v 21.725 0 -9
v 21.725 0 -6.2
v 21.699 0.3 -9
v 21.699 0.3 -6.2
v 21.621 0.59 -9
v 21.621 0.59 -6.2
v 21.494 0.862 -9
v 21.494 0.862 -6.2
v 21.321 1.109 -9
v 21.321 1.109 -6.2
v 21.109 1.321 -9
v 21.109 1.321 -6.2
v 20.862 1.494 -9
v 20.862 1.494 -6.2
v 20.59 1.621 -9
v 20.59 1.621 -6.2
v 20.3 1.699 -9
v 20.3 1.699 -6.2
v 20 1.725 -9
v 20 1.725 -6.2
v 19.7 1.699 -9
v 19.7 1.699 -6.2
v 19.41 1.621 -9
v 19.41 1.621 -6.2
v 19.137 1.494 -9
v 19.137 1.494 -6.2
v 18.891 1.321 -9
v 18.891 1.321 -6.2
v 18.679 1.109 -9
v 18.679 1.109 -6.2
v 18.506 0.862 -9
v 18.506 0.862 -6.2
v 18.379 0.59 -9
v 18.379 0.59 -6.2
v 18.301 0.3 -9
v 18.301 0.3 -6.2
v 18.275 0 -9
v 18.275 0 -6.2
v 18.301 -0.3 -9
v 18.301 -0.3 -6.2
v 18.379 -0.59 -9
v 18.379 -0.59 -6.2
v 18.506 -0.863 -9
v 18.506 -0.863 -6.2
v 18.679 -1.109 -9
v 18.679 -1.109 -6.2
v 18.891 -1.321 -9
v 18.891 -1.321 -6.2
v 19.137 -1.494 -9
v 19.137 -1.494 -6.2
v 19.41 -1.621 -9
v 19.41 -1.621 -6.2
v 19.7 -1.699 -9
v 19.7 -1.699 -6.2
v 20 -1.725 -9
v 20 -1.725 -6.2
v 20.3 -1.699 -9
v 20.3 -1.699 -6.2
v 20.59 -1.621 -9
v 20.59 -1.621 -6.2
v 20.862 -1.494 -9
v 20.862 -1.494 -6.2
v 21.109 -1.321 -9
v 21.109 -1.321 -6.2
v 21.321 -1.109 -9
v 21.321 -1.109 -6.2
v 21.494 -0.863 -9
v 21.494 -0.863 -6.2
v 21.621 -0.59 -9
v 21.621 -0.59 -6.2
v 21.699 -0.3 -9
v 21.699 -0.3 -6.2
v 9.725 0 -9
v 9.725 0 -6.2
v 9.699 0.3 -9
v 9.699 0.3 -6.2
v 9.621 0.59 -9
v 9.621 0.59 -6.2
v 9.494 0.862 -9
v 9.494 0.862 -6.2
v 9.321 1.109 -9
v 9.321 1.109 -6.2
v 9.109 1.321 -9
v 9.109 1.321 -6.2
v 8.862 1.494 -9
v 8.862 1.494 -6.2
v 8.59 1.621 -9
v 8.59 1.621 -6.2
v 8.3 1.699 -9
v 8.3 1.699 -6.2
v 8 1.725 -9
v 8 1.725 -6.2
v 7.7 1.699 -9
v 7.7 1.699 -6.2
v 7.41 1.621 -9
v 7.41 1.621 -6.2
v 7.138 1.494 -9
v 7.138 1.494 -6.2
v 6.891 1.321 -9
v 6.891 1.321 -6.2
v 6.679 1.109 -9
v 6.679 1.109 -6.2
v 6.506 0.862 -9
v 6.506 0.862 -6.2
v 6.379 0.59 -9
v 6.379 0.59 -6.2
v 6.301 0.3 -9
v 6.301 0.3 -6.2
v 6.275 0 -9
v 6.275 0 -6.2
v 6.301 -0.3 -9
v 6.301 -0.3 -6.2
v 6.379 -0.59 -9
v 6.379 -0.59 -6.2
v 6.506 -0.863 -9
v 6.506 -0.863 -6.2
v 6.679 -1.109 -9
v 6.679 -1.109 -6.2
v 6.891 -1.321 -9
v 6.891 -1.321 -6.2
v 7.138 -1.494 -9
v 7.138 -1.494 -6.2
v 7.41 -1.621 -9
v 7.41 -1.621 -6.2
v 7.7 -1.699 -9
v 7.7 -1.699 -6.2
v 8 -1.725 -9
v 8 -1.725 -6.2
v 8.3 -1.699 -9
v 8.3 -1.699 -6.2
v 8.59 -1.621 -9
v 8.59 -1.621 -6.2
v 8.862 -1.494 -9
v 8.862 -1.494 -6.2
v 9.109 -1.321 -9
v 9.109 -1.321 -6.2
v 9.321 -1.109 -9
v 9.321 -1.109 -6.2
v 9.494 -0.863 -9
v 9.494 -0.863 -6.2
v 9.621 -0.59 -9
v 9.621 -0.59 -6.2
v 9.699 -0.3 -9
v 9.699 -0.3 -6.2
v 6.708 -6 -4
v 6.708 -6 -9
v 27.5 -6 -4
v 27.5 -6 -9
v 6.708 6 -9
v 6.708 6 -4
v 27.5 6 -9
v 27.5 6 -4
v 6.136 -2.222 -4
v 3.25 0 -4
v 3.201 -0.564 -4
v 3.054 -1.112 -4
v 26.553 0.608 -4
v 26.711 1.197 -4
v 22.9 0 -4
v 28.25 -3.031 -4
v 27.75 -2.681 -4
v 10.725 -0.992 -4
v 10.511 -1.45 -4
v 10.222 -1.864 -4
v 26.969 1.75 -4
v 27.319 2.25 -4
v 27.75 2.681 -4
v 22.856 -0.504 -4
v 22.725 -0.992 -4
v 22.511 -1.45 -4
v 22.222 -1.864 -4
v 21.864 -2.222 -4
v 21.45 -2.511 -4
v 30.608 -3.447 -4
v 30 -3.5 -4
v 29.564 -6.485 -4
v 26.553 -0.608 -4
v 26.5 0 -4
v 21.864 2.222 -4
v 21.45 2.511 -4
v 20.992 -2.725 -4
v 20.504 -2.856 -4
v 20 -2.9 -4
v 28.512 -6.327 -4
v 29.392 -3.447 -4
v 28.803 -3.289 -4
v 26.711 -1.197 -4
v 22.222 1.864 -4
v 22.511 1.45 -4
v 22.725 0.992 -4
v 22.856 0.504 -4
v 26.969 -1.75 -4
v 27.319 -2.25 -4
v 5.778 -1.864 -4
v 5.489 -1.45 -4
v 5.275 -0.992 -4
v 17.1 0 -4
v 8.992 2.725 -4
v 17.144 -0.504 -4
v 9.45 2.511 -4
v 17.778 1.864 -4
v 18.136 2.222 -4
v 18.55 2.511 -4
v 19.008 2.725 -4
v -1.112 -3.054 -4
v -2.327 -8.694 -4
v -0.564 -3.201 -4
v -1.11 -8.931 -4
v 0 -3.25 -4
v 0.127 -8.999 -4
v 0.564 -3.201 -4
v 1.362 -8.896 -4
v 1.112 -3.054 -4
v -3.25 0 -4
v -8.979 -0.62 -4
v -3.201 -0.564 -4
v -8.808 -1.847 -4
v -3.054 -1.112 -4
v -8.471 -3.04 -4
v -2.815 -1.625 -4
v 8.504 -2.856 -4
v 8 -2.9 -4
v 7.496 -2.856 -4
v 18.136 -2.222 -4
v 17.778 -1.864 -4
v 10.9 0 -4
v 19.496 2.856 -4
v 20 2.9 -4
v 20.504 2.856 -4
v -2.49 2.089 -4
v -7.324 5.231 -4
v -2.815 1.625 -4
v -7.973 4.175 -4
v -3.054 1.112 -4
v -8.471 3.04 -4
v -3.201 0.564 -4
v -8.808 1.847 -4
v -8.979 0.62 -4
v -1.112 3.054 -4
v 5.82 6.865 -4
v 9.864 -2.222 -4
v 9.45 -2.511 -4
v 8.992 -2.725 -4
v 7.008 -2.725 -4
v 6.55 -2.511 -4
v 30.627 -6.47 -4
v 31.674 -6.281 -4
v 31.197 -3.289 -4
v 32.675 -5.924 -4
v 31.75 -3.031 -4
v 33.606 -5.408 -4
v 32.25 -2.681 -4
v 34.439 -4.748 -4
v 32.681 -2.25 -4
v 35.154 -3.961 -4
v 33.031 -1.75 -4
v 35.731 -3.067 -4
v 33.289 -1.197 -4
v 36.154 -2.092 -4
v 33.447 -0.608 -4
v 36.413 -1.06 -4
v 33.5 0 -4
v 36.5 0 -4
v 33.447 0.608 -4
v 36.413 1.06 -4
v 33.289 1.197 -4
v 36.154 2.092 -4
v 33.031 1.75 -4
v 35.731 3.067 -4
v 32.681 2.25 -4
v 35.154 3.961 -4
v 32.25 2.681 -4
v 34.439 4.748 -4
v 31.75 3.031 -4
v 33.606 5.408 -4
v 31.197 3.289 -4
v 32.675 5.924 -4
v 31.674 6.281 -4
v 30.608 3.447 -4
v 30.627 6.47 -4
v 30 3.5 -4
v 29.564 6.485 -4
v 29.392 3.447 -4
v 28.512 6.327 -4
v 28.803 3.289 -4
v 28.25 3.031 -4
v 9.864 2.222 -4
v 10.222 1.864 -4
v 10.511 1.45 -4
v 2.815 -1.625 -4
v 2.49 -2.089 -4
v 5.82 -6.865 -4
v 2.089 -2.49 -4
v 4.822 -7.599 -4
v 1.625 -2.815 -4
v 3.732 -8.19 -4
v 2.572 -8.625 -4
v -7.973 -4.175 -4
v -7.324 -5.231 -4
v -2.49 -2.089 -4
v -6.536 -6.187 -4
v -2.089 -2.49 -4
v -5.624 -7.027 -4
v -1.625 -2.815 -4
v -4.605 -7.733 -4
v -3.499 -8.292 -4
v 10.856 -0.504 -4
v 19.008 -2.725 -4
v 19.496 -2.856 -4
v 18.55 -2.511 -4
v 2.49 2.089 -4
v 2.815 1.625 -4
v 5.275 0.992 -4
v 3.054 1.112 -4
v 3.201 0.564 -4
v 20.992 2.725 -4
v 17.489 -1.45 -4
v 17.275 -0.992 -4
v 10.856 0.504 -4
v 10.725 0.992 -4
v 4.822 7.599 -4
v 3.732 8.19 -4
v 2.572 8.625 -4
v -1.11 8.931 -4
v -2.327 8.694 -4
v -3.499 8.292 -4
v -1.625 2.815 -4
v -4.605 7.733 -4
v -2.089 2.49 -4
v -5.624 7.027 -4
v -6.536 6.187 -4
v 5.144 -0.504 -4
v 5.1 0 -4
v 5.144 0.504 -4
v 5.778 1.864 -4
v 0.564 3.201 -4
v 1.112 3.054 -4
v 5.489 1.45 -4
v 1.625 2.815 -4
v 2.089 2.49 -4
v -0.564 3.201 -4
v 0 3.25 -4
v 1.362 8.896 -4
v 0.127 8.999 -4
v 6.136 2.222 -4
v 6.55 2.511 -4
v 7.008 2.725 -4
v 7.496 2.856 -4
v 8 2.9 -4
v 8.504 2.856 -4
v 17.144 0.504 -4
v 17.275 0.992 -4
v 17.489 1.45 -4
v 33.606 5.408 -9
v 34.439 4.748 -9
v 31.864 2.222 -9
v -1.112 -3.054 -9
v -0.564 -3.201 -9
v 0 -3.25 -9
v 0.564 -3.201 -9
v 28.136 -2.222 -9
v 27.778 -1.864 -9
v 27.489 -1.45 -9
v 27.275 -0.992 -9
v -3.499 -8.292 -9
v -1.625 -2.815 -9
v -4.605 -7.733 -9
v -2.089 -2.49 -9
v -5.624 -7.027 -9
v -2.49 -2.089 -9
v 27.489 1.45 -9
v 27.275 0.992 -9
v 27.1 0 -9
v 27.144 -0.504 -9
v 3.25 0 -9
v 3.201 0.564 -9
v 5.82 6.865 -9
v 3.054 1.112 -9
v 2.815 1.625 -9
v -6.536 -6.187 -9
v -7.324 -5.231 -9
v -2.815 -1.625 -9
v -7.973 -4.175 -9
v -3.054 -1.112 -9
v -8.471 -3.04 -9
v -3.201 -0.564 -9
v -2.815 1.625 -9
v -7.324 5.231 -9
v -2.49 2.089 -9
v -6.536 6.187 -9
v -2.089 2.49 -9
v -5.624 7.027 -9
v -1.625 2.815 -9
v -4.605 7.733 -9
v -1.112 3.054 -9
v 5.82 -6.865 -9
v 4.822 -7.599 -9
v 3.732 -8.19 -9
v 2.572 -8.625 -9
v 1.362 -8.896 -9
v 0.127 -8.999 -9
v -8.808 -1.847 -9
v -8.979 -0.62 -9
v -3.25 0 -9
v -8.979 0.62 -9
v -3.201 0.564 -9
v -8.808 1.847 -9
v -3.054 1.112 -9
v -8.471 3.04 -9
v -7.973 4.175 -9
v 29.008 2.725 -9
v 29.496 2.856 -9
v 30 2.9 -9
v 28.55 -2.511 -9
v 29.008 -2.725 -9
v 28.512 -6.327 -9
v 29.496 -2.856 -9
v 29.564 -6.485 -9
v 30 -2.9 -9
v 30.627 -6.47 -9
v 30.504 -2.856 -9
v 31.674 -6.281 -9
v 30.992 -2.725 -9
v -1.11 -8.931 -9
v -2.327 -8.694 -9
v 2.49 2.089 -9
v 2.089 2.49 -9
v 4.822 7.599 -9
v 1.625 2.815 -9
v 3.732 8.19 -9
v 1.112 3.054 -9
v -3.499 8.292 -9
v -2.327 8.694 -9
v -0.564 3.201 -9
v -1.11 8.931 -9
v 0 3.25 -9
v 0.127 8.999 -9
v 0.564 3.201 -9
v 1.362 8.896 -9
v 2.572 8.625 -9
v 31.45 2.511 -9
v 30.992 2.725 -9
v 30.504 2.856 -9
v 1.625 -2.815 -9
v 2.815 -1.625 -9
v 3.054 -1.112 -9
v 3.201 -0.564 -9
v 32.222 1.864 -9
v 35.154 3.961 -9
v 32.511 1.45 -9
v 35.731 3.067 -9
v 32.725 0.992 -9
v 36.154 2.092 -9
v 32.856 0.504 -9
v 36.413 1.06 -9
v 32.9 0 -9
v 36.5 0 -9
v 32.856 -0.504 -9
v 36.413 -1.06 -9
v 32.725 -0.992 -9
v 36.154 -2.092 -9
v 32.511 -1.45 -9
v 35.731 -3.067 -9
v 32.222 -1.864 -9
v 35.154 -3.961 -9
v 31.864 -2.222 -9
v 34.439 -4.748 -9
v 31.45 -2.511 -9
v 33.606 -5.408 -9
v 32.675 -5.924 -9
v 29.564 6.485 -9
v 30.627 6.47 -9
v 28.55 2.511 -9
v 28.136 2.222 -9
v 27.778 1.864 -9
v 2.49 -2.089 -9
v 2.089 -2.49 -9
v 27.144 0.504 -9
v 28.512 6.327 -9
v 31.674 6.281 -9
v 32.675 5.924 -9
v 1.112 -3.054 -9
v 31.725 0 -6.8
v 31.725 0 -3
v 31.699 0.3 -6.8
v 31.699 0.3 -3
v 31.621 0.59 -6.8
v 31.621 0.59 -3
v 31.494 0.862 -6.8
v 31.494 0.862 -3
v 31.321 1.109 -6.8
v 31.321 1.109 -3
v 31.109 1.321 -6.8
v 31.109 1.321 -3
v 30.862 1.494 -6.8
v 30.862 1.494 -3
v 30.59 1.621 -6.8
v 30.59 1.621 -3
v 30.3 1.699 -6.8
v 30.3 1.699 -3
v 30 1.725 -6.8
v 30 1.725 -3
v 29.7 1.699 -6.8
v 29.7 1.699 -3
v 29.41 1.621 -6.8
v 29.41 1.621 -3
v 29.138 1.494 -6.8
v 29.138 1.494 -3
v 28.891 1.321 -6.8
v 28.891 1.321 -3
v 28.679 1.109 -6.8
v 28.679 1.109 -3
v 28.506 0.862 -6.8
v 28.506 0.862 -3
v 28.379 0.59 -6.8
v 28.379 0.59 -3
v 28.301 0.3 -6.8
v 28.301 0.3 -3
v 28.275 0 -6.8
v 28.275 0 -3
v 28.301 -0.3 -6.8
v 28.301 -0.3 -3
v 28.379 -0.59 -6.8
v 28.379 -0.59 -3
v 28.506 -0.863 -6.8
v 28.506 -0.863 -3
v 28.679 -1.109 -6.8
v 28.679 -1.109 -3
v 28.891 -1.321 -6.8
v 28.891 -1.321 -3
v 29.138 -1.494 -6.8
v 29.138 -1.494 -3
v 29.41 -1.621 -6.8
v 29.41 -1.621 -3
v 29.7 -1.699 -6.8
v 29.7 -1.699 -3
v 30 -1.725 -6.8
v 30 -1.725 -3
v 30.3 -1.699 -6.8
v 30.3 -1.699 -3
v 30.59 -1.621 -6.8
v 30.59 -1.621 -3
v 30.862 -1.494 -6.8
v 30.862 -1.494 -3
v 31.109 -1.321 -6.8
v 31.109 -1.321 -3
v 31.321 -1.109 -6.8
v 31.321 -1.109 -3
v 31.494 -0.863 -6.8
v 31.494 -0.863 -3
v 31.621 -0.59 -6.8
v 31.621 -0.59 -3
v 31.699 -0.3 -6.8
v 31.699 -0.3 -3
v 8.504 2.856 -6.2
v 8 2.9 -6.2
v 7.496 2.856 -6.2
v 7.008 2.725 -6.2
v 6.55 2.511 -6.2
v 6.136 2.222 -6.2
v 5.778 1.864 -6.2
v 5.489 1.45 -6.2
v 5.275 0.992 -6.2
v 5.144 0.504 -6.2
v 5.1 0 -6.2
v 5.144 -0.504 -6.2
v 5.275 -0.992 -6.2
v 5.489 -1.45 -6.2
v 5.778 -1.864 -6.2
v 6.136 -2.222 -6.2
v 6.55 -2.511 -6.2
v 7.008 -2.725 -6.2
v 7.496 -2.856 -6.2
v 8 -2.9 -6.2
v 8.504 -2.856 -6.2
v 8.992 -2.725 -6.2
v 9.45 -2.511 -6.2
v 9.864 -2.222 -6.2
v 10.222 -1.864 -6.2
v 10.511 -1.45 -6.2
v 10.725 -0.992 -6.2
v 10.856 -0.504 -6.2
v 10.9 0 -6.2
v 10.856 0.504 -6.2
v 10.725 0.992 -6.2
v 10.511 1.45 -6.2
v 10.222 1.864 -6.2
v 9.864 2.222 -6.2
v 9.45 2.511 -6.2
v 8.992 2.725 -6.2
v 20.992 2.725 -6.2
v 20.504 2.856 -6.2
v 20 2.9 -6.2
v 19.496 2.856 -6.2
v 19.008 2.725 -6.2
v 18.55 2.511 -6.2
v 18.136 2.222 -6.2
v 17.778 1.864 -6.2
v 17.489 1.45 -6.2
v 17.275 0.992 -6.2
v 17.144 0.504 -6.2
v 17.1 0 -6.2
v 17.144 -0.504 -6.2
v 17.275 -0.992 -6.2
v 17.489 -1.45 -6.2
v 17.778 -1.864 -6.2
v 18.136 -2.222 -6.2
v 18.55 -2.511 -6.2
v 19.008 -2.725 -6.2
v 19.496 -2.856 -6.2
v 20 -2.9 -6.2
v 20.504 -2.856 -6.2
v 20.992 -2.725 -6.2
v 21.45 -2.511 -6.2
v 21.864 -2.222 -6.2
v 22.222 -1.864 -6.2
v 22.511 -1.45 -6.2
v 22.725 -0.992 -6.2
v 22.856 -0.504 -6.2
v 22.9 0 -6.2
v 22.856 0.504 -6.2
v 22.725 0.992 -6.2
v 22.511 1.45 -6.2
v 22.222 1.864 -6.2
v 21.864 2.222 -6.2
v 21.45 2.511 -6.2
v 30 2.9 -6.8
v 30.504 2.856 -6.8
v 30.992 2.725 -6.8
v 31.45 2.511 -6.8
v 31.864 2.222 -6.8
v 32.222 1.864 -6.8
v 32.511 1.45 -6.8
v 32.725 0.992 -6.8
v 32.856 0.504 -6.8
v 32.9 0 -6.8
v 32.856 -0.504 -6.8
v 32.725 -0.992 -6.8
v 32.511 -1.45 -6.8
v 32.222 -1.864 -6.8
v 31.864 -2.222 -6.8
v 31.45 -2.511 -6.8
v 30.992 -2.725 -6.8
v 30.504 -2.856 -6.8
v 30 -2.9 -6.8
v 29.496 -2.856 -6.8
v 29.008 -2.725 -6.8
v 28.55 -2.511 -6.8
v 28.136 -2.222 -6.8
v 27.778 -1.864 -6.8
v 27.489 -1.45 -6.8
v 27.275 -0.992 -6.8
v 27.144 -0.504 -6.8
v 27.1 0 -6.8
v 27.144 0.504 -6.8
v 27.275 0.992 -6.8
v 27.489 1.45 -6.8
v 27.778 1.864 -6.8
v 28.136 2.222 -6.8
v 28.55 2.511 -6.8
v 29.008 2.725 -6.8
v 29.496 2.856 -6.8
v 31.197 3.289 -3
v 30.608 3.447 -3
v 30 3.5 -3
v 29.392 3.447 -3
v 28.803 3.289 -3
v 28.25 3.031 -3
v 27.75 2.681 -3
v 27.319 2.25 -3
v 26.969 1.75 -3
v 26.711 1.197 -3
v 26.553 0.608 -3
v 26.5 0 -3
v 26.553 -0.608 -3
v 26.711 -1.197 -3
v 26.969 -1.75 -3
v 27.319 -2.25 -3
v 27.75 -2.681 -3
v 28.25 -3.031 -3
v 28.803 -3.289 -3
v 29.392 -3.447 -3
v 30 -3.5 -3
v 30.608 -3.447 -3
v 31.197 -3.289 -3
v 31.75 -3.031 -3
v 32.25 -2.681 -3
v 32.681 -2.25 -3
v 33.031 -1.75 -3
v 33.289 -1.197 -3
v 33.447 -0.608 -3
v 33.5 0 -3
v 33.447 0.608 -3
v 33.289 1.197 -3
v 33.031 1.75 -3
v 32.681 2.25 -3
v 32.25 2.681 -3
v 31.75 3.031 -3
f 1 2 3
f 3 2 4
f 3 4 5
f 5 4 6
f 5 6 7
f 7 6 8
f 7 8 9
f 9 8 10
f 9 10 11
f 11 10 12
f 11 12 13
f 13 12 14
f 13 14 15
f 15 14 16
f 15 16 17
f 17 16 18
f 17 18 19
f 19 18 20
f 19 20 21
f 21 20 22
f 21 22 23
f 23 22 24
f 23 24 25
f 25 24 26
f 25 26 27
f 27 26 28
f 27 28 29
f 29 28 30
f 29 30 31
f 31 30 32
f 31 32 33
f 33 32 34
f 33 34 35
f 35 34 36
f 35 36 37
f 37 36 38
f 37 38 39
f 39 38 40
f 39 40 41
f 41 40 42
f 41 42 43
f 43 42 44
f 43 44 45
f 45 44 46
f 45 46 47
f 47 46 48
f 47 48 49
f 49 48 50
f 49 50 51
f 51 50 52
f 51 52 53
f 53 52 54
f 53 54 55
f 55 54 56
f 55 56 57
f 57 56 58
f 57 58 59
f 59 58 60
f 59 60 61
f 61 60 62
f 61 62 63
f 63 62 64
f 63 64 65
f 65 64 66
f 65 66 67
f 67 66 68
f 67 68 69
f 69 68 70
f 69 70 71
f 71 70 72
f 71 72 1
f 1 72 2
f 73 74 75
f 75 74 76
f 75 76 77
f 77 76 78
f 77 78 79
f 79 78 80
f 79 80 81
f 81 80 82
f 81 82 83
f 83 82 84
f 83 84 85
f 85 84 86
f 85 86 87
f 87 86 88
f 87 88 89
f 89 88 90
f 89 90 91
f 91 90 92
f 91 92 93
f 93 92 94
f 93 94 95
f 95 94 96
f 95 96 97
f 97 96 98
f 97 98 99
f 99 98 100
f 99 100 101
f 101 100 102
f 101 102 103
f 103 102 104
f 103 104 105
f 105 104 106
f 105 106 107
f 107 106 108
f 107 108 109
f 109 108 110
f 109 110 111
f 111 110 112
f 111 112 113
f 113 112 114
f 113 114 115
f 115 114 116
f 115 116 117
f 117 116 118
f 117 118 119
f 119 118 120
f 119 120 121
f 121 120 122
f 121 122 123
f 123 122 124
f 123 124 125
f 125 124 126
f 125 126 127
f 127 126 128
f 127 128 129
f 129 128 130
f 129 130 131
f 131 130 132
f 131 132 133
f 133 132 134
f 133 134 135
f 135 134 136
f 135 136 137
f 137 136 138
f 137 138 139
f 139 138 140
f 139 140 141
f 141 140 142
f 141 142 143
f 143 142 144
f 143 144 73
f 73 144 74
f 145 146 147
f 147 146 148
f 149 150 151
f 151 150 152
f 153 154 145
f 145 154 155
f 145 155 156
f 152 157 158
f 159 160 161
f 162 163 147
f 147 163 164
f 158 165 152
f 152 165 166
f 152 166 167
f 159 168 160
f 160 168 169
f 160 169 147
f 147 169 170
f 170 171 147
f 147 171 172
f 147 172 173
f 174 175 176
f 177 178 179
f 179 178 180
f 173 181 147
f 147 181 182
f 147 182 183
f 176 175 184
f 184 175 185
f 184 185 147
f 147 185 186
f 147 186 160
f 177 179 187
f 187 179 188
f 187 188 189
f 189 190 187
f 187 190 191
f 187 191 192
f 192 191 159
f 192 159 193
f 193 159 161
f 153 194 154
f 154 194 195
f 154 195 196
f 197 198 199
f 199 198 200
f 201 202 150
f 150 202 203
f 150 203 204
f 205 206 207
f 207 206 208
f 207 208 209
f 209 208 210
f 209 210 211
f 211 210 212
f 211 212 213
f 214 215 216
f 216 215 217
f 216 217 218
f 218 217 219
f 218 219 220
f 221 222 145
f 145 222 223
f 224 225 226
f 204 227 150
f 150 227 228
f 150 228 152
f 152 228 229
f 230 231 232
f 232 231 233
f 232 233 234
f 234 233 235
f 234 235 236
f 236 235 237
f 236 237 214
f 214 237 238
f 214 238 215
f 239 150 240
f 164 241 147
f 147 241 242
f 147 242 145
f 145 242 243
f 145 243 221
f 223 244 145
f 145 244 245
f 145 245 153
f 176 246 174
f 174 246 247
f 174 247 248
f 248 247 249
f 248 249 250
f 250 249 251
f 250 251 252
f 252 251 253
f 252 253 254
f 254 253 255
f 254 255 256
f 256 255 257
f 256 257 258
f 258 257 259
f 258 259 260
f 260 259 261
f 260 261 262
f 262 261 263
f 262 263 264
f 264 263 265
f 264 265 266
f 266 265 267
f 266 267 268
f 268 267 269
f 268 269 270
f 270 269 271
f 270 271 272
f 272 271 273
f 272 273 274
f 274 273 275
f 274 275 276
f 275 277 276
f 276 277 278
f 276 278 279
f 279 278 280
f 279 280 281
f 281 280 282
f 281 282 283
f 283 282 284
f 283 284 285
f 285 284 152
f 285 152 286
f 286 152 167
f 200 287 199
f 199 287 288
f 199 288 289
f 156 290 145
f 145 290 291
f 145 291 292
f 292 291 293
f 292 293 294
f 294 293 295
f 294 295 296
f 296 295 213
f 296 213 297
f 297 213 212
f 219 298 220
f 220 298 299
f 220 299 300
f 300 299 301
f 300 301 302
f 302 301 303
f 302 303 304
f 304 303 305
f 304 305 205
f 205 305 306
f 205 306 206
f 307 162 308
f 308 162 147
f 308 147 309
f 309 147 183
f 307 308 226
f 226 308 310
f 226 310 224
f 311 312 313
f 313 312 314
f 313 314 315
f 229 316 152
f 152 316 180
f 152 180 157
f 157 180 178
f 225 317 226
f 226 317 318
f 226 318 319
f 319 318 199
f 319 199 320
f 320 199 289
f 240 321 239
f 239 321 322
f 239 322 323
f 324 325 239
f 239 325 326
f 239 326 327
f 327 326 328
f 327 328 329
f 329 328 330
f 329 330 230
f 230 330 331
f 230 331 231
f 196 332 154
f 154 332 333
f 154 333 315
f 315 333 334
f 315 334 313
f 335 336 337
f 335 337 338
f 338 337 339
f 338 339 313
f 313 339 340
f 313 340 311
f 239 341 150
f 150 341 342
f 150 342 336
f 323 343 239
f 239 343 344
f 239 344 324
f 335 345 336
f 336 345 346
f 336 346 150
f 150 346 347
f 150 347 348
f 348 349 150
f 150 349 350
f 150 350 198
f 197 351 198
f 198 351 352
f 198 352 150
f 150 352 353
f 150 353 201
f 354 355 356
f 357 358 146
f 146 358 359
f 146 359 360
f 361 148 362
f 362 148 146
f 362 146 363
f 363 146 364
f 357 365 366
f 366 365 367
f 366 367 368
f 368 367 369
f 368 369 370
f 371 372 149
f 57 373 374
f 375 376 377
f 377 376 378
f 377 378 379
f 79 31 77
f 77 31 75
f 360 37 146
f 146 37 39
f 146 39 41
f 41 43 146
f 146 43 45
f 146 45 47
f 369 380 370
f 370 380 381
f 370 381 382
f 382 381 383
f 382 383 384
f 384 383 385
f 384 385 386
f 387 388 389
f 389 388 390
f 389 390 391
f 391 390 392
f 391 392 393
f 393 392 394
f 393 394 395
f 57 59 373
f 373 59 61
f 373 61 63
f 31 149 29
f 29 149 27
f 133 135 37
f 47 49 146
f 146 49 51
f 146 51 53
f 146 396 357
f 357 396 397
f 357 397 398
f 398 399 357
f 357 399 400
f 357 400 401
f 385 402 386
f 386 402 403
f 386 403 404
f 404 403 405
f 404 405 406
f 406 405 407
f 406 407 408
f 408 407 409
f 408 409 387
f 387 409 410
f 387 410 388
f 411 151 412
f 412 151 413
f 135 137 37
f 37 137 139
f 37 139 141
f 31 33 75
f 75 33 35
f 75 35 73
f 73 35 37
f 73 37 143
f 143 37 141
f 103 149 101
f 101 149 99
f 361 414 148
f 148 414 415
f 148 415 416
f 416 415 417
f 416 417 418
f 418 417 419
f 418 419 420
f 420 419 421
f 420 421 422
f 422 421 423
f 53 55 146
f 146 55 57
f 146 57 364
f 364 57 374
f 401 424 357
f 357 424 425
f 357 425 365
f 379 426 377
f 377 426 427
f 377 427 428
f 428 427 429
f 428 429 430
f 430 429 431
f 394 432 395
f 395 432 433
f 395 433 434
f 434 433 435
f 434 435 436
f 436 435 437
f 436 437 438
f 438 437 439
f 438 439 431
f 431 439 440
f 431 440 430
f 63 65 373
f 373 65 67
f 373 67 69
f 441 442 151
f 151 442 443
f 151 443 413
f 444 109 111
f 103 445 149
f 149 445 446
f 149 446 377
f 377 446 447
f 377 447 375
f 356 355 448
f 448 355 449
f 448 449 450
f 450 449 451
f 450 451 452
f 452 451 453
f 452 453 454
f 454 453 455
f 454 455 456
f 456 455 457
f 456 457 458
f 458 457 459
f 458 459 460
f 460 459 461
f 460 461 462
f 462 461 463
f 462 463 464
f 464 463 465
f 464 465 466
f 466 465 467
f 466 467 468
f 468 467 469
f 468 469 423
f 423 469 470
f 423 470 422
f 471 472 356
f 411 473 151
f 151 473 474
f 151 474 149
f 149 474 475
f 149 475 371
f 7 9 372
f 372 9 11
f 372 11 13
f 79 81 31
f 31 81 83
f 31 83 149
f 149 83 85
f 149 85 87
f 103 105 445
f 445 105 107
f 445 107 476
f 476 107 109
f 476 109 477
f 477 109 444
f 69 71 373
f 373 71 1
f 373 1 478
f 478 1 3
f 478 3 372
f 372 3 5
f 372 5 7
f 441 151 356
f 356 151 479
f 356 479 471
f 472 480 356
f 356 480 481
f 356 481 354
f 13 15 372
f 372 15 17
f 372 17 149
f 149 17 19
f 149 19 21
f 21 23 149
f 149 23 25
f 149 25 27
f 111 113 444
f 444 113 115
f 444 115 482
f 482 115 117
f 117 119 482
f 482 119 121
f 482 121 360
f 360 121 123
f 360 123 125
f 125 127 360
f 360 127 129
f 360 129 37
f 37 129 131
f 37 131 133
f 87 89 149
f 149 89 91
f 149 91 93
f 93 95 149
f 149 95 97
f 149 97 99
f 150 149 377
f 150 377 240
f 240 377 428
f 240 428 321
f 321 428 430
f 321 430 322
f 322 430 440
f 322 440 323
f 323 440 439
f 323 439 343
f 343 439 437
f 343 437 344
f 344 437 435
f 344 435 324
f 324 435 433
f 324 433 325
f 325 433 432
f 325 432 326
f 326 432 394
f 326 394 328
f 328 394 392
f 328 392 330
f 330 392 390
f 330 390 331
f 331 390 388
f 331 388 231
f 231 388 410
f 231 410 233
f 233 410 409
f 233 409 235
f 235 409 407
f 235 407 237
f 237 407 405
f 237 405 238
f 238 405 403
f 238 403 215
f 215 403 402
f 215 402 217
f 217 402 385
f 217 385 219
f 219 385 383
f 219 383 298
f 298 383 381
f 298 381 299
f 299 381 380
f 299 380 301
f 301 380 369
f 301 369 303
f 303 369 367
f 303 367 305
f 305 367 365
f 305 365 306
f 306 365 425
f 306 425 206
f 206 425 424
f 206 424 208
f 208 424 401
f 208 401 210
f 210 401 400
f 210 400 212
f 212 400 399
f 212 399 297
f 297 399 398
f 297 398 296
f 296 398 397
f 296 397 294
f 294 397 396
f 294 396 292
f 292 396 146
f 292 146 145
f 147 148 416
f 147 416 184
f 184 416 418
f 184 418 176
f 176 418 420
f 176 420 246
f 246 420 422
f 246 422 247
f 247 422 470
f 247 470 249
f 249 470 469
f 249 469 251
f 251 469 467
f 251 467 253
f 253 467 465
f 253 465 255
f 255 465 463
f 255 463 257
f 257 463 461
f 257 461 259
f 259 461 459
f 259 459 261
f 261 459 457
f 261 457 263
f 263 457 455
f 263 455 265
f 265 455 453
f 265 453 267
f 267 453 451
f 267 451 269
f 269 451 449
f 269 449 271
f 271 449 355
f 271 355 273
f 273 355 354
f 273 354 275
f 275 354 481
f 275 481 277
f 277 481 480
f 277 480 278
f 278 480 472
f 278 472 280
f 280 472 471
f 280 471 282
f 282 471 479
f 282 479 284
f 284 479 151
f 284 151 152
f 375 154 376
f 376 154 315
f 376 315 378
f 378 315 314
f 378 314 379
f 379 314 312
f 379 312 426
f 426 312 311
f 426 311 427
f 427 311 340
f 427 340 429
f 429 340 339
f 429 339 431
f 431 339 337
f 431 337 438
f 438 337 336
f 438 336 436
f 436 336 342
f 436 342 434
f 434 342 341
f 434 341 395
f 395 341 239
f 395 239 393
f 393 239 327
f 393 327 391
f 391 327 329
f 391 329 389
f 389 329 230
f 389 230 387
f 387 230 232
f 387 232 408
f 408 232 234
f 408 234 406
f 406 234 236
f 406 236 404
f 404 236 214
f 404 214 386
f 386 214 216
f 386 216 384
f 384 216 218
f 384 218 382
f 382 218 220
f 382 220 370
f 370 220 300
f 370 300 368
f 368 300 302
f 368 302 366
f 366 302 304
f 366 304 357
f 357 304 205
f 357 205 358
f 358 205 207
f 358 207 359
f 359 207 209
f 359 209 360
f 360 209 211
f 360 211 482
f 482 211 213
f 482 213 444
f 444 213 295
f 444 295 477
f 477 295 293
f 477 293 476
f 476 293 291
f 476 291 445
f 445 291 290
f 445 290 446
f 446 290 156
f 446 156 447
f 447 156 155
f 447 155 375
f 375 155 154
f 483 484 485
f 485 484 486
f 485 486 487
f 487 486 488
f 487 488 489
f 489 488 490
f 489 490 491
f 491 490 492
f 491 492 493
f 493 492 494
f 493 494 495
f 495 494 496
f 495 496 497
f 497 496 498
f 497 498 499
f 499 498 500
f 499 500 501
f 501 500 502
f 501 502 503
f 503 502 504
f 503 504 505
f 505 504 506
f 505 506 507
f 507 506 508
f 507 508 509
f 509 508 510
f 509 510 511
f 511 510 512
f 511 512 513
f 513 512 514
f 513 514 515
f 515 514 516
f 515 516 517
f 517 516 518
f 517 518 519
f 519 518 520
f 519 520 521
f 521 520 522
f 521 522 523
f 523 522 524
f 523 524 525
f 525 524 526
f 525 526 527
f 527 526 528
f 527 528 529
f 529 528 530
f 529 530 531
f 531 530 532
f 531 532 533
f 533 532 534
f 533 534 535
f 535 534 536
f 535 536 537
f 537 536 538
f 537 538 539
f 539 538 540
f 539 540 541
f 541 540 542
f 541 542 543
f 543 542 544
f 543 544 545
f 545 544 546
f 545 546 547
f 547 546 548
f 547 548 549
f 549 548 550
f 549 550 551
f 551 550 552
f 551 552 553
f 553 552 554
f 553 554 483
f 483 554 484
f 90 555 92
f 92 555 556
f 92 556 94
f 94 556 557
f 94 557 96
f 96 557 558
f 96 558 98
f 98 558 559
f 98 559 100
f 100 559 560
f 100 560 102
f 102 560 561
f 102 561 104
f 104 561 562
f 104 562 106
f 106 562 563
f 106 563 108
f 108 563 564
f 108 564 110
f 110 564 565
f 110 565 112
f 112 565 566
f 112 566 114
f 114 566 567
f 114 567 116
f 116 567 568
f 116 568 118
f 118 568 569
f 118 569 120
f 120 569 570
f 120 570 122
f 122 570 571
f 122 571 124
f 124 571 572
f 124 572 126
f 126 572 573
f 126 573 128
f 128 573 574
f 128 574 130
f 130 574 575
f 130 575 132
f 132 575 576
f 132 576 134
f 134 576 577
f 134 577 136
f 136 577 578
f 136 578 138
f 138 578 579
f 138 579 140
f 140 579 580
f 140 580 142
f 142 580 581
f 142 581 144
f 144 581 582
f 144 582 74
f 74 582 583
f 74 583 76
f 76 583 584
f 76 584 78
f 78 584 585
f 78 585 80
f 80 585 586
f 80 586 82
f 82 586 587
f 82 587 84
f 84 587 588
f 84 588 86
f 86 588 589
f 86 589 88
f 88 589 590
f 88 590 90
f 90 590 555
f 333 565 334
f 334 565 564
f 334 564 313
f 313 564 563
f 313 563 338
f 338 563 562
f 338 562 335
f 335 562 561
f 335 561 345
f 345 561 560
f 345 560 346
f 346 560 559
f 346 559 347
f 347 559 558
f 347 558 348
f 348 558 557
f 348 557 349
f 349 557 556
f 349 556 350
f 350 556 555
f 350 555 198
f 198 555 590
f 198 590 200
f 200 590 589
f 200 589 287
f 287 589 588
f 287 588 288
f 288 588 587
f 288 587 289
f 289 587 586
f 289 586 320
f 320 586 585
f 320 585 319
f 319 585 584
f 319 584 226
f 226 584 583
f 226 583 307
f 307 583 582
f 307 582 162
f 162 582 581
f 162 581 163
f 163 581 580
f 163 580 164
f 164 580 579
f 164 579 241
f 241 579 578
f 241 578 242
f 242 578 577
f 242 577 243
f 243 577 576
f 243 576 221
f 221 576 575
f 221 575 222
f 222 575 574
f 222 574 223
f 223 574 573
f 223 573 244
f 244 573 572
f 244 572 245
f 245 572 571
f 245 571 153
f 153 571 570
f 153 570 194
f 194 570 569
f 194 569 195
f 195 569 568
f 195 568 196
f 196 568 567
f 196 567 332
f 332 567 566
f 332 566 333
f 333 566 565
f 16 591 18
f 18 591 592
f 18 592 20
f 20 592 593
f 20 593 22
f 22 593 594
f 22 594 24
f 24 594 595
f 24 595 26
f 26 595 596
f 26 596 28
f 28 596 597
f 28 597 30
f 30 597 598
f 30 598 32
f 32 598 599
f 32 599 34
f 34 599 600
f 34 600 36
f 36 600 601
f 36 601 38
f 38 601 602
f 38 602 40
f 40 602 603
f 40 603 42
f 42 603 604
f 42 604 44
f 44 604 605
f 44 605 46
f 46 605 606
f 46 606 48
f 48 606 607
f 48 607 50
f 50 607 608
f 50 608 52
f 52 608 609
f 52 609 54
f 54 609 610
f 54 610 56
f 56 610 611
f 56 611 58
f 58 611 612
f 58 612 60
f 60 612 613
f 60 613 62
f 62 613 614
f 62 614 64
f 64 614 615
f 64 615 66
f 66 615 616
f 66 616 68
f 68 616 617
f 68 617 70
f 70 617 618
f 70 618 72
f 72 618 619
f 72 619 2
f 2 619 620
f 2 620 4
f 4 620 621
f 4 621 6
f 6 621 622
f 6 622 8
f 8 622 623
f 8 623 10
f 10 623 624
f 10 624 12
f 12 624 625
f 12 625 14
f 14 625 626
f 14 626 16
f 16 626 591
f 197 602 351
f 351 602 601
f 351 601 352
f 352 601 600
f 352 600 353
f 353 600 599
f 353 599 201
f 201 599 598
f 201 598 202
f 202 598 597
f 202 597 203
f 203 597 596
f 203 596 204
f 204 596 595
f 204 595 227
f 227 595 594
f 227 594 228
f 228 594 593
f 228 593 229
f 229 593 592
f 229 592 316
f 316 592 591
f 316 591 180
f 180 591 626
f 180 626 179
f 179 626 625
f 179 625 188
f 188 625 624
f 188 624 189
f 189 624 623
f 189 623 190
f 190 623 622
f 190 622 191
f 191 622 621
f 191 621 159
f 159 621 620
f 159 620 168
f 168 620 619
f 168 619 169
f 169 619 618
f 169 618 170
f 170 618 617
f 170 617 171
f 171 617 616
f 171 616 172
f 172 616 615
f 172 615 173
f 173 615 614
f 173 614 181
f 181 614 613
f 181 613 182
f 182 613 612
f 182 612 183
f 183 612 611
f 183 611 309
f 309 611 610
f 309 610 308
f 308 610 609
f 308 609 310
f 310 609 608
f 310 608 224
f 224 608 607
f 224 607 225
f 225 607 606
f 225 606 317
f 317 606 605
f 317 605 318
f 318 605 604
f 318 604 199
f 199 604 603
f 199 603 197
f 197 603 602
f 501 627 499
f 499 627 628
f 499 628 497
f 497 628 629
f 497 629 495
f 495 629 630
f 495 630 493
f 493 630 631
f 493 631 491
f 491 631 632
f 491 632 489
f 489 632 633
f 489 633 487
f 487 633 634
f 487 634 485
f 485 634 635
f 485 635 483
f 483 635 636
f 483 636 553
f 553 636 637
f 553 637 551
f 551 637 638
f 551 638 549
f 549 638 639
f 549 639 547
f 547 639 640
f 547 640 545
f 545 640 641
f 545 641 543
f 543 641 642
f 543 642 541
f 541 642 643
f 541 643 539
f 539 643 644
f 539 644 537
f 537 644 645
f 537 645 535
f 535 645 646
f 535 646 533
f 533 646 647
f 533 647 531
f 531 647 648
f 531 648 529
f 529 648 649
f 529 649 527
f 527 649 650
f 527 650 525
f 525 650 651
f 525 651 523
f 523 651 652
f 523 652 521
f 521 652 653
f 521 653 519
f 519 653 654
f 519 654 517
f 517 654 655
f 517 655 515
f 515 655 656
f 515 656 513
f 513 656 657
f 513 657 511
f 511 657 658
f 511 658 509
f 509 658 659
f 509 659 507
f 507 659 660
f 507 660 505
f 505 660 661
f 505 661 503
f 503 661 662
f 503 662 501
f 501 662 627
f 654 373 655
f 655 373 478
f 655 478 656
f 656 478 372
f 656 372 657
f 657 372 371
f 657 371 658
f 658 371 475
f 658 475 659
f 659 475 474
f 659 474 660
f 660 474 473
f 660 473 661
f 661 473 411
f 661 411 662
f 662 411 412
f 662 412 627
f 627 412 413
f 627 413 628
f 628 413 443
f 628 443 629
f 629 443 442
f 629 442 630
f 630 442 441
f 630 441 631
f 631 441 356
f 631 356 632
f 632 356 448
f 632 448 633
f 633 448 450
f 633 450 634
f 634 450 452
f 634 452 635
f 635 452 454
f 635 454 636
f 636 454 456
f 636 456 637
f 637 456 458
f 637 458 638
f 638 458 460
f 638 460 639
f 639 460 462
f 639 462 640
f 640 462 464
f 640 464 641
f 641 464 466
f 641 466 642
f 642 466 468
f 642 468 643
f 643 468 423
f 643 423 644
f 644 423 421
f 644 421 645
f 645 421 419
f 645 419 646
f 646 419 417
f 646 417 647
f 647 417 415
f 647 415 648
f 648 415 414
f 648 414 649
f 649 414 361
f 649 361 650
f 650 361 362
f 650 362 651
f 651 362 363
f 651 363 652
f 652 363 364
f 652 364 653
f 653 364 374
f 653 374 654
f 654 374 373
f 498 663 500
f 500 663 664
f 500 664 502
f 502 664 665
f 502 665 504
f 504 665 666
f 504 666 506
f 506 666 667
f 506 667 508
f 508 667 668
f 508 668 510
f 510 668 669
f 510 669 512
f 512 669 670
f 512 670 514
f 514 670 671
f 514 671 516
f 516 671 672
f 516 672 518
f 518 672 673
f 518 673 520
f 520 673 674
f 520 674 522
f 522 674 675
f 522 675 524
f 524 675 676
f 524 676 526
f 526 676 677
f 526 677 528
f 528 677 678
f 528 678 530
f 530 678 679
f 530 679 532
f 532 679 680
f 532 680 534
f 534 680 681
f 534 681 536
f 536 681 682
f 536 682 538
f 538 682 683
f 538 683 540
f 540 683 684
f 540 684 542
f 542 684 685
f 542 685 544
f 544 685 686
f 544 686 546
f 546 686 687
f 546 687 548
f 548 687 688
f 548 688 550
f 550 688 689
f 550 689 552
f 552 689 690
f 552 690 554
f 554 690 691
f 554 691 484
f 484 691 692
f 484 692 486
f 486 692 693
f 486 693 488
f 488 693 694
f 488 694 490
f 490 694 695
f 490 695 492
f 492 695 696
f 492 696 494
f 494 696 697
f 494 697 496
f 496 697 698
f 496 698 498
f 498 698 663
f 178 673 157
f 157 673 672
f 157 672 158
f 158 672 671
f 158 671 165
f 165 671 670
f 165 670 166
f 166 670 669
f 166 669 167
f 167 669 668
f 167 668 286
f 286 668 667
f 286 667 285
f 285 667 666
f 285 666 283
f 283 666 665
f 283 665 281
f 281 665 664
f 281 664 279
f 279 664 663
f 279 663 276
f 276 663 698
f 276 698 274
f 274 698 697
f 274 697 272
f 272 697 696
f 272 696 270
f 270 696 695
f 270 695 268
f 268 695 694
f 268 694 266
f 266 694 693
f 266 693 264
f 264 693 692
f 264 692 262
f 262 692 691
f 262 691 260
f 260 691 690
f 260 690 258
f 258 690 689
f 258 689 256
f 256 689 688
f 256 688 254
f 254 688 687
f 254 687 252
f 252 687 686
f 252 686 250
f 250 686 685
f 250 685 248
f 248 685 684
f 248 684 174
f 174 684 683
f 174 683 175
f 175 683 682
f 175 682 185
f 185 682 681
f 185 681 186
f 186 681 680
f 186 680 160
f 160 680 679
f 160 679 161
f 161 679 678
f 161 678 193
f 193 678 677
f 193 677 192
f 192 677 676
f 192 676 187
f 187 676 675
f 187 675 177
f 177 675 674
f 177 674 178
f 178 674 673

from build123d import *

# Parameters (mm, degrees)
BOSS_EXTRUDE1_START     = -9
SKETCH1_W               = 30
SKETCH1_H               = 12
BOSS_EXTRUDE1_DEPTH     = 5
BOSS_EXTRUDE2_START     = -9
SKETCH2_R               = 9
BOSS_EXTRUDE2_DEPTH     = 5
BOSS_EXTRUDE3_START     = -9
SKETCH3_R               = 6.5
BOSS_EXTRUDE3_DEPTH     = 5
CUT_EXTRUDE1_DEPTH      = 39.655530005
CUT_EXTRUDE1_DEPTH_BACK = 39.655530005
SKETCH4_R               = 3.25
CUT_EXTRUDE2_DEPTH      = 39.655530005
CUT_EXTRUDE2_DEPTH_BACK = 39.655530005
SKETCH5_R               = 1.725
CUT_EXTRUDE3_START      = -6.2
SKETCH6_R               = 2.9
CUT_EXTRUDE3_DEPTH      = 2.2
CUT_EXTRUDE4_START      = -6.2
SKETCH7_R               = 2.9
CUT_EXTRUDE4_DEPTH      = 2.2
CUT_EXTRUDE5_START      = -9
SKETCH8_R               = 2.9
CUT_EXTRUDE5_DEPTH      = 2.2
BOSS_EXTRUDE4_START     = -4
SKETCH9_R               = 3.5
BOSS_EXTRUDE4_DEPTH     = 1
CUT_EXTRUDE6_DEPTH      = 39.655530005
CUT_EXTRUDE6_DEPTH_BACK = 39.655530005
SKETCH10_R              = 1.725


with BuildPart() as part:
    # Sketch1 → Boss-Extrude1 (new body)
    with BuildSketch(Plane.XY.offset(BOSS_EXTRUDE1_START)):
        with Locations((15, 0)):
            Rectangle(SKETCH1_W, SKETCH1_H)
    extrude(amount=BOSS_EXTRUDE1_DEPTH)

    # Sketch2 → Boss-Extrude2 (add)
    with BuildSketch(Plane.XY.offset(BOSS_EXTRUDE2_START)):
        Circle(SKETCH2_R)
    extrude(amount=BOSS_EXTRUDE2_DEPTH)

    # Sketch3 → Boss-Extrude3 (add)
    with BuildSketch(Plane.XY.offset(BOSS_EXTRUDE3_START)):
        with Locations((30, 0)):
            Circle(SKETCH3_R)
    extrude(amount=BOSS_EXTRUDE3_DEPTH)

    # Sketch4 → Cut-Extrude1 (cut, two sides: drawn at the far end of the back side and taken through both)
    with BuildSketch(Plane.XY.offset(-CUT_EXTRUDE1_DEPTH_BACK)):
        Circle(SKETCH4_R)
    extrude(amount=CUT_EXTRUDE1_DEPTH + CUT_EXTRUDE1_DEPTH_BACK, mode=Mode.SUBTRACT)

    # Sketch5 → Cut-Extrude2 (cut, two sides: drawn at the far end of the back side and taken through both)
    with BuildSketch(Plane.XY.offset(-CUT_EXTRUDE2_DEPTH_BACK)):
        with Locations((8, 0)):
            Circle(SKETCH5_R)
        with Locations((20, 0)):
            Circle(SKETCH5_R)
        with Locations((30, 0)):
            Circle(SKETCH5_R)
    extrude(amount=CUT_EXTRUDE2_DEPTH + CUT_EXTRUDE2_DEPTH_BACK, mode=Mode.SUBTRACT)

    # Sketch6 → Cut-Extrude3 (cut)
    with BuildSketch(Plane.XY.offset(CUT_EXTRUDE3_START)):
        with Locations((8, 0)):
            Circle(SKETCH6_R)
    extrude(amount=CUT_EXTRUDE3_DEPTH, mode=Mode.SUBTRACT)

    # Sketch7 → Cut-Extrude4 (cut)
    with BuildSketch(Plane.XY.offset(CUT_EXTRUDE4_START)):
        with Locations((20, 0)):
            Circle(SKETCH7_R)
    extrude(amount=CUT_EXTRUDE4_DEPTH, mode=Mode.SUBTRACT)

    # Sketch8 → Cut-Extrude5 (cut)
    with BuildSketch(Plane.XY.offset(CUT_EXTRUDE5_START)):
        with Locations((30, 0)):
            Circle(SKETCH8_R)
    extrude(amount=CUT_EXTRUDE5_DEPTH, mode=Mode.SUBTRACT)

    # Sketch9 → Boss-Extrude4 (add)
    with BuildSketch(Plane.XY.offset(BOSS_EXTRUDE4_START)):
        with Locations((30, 0)):
            Circle(SKETCH9_R)
    extrude(amount=BOSS_EXTRUDE4_DEPTH)

    # Sketch10 → Cut-Extrude6 (cut, two sides: drawn at the far end of the back side and taken through both)
    with BuildSketch(Plane.XY.offset(-CUT_EXTRUDE6_DEPTH_BACK)):
        with Locations((30, 0)):
            Circle(SKETCH10_R)
    extrude(amount=CUT_EXTRUDE6_DEPTH + CUT_EXTRUDE6_DEPTH_BACK, mode=Mode.SUBTRACT)


solid = part.part
